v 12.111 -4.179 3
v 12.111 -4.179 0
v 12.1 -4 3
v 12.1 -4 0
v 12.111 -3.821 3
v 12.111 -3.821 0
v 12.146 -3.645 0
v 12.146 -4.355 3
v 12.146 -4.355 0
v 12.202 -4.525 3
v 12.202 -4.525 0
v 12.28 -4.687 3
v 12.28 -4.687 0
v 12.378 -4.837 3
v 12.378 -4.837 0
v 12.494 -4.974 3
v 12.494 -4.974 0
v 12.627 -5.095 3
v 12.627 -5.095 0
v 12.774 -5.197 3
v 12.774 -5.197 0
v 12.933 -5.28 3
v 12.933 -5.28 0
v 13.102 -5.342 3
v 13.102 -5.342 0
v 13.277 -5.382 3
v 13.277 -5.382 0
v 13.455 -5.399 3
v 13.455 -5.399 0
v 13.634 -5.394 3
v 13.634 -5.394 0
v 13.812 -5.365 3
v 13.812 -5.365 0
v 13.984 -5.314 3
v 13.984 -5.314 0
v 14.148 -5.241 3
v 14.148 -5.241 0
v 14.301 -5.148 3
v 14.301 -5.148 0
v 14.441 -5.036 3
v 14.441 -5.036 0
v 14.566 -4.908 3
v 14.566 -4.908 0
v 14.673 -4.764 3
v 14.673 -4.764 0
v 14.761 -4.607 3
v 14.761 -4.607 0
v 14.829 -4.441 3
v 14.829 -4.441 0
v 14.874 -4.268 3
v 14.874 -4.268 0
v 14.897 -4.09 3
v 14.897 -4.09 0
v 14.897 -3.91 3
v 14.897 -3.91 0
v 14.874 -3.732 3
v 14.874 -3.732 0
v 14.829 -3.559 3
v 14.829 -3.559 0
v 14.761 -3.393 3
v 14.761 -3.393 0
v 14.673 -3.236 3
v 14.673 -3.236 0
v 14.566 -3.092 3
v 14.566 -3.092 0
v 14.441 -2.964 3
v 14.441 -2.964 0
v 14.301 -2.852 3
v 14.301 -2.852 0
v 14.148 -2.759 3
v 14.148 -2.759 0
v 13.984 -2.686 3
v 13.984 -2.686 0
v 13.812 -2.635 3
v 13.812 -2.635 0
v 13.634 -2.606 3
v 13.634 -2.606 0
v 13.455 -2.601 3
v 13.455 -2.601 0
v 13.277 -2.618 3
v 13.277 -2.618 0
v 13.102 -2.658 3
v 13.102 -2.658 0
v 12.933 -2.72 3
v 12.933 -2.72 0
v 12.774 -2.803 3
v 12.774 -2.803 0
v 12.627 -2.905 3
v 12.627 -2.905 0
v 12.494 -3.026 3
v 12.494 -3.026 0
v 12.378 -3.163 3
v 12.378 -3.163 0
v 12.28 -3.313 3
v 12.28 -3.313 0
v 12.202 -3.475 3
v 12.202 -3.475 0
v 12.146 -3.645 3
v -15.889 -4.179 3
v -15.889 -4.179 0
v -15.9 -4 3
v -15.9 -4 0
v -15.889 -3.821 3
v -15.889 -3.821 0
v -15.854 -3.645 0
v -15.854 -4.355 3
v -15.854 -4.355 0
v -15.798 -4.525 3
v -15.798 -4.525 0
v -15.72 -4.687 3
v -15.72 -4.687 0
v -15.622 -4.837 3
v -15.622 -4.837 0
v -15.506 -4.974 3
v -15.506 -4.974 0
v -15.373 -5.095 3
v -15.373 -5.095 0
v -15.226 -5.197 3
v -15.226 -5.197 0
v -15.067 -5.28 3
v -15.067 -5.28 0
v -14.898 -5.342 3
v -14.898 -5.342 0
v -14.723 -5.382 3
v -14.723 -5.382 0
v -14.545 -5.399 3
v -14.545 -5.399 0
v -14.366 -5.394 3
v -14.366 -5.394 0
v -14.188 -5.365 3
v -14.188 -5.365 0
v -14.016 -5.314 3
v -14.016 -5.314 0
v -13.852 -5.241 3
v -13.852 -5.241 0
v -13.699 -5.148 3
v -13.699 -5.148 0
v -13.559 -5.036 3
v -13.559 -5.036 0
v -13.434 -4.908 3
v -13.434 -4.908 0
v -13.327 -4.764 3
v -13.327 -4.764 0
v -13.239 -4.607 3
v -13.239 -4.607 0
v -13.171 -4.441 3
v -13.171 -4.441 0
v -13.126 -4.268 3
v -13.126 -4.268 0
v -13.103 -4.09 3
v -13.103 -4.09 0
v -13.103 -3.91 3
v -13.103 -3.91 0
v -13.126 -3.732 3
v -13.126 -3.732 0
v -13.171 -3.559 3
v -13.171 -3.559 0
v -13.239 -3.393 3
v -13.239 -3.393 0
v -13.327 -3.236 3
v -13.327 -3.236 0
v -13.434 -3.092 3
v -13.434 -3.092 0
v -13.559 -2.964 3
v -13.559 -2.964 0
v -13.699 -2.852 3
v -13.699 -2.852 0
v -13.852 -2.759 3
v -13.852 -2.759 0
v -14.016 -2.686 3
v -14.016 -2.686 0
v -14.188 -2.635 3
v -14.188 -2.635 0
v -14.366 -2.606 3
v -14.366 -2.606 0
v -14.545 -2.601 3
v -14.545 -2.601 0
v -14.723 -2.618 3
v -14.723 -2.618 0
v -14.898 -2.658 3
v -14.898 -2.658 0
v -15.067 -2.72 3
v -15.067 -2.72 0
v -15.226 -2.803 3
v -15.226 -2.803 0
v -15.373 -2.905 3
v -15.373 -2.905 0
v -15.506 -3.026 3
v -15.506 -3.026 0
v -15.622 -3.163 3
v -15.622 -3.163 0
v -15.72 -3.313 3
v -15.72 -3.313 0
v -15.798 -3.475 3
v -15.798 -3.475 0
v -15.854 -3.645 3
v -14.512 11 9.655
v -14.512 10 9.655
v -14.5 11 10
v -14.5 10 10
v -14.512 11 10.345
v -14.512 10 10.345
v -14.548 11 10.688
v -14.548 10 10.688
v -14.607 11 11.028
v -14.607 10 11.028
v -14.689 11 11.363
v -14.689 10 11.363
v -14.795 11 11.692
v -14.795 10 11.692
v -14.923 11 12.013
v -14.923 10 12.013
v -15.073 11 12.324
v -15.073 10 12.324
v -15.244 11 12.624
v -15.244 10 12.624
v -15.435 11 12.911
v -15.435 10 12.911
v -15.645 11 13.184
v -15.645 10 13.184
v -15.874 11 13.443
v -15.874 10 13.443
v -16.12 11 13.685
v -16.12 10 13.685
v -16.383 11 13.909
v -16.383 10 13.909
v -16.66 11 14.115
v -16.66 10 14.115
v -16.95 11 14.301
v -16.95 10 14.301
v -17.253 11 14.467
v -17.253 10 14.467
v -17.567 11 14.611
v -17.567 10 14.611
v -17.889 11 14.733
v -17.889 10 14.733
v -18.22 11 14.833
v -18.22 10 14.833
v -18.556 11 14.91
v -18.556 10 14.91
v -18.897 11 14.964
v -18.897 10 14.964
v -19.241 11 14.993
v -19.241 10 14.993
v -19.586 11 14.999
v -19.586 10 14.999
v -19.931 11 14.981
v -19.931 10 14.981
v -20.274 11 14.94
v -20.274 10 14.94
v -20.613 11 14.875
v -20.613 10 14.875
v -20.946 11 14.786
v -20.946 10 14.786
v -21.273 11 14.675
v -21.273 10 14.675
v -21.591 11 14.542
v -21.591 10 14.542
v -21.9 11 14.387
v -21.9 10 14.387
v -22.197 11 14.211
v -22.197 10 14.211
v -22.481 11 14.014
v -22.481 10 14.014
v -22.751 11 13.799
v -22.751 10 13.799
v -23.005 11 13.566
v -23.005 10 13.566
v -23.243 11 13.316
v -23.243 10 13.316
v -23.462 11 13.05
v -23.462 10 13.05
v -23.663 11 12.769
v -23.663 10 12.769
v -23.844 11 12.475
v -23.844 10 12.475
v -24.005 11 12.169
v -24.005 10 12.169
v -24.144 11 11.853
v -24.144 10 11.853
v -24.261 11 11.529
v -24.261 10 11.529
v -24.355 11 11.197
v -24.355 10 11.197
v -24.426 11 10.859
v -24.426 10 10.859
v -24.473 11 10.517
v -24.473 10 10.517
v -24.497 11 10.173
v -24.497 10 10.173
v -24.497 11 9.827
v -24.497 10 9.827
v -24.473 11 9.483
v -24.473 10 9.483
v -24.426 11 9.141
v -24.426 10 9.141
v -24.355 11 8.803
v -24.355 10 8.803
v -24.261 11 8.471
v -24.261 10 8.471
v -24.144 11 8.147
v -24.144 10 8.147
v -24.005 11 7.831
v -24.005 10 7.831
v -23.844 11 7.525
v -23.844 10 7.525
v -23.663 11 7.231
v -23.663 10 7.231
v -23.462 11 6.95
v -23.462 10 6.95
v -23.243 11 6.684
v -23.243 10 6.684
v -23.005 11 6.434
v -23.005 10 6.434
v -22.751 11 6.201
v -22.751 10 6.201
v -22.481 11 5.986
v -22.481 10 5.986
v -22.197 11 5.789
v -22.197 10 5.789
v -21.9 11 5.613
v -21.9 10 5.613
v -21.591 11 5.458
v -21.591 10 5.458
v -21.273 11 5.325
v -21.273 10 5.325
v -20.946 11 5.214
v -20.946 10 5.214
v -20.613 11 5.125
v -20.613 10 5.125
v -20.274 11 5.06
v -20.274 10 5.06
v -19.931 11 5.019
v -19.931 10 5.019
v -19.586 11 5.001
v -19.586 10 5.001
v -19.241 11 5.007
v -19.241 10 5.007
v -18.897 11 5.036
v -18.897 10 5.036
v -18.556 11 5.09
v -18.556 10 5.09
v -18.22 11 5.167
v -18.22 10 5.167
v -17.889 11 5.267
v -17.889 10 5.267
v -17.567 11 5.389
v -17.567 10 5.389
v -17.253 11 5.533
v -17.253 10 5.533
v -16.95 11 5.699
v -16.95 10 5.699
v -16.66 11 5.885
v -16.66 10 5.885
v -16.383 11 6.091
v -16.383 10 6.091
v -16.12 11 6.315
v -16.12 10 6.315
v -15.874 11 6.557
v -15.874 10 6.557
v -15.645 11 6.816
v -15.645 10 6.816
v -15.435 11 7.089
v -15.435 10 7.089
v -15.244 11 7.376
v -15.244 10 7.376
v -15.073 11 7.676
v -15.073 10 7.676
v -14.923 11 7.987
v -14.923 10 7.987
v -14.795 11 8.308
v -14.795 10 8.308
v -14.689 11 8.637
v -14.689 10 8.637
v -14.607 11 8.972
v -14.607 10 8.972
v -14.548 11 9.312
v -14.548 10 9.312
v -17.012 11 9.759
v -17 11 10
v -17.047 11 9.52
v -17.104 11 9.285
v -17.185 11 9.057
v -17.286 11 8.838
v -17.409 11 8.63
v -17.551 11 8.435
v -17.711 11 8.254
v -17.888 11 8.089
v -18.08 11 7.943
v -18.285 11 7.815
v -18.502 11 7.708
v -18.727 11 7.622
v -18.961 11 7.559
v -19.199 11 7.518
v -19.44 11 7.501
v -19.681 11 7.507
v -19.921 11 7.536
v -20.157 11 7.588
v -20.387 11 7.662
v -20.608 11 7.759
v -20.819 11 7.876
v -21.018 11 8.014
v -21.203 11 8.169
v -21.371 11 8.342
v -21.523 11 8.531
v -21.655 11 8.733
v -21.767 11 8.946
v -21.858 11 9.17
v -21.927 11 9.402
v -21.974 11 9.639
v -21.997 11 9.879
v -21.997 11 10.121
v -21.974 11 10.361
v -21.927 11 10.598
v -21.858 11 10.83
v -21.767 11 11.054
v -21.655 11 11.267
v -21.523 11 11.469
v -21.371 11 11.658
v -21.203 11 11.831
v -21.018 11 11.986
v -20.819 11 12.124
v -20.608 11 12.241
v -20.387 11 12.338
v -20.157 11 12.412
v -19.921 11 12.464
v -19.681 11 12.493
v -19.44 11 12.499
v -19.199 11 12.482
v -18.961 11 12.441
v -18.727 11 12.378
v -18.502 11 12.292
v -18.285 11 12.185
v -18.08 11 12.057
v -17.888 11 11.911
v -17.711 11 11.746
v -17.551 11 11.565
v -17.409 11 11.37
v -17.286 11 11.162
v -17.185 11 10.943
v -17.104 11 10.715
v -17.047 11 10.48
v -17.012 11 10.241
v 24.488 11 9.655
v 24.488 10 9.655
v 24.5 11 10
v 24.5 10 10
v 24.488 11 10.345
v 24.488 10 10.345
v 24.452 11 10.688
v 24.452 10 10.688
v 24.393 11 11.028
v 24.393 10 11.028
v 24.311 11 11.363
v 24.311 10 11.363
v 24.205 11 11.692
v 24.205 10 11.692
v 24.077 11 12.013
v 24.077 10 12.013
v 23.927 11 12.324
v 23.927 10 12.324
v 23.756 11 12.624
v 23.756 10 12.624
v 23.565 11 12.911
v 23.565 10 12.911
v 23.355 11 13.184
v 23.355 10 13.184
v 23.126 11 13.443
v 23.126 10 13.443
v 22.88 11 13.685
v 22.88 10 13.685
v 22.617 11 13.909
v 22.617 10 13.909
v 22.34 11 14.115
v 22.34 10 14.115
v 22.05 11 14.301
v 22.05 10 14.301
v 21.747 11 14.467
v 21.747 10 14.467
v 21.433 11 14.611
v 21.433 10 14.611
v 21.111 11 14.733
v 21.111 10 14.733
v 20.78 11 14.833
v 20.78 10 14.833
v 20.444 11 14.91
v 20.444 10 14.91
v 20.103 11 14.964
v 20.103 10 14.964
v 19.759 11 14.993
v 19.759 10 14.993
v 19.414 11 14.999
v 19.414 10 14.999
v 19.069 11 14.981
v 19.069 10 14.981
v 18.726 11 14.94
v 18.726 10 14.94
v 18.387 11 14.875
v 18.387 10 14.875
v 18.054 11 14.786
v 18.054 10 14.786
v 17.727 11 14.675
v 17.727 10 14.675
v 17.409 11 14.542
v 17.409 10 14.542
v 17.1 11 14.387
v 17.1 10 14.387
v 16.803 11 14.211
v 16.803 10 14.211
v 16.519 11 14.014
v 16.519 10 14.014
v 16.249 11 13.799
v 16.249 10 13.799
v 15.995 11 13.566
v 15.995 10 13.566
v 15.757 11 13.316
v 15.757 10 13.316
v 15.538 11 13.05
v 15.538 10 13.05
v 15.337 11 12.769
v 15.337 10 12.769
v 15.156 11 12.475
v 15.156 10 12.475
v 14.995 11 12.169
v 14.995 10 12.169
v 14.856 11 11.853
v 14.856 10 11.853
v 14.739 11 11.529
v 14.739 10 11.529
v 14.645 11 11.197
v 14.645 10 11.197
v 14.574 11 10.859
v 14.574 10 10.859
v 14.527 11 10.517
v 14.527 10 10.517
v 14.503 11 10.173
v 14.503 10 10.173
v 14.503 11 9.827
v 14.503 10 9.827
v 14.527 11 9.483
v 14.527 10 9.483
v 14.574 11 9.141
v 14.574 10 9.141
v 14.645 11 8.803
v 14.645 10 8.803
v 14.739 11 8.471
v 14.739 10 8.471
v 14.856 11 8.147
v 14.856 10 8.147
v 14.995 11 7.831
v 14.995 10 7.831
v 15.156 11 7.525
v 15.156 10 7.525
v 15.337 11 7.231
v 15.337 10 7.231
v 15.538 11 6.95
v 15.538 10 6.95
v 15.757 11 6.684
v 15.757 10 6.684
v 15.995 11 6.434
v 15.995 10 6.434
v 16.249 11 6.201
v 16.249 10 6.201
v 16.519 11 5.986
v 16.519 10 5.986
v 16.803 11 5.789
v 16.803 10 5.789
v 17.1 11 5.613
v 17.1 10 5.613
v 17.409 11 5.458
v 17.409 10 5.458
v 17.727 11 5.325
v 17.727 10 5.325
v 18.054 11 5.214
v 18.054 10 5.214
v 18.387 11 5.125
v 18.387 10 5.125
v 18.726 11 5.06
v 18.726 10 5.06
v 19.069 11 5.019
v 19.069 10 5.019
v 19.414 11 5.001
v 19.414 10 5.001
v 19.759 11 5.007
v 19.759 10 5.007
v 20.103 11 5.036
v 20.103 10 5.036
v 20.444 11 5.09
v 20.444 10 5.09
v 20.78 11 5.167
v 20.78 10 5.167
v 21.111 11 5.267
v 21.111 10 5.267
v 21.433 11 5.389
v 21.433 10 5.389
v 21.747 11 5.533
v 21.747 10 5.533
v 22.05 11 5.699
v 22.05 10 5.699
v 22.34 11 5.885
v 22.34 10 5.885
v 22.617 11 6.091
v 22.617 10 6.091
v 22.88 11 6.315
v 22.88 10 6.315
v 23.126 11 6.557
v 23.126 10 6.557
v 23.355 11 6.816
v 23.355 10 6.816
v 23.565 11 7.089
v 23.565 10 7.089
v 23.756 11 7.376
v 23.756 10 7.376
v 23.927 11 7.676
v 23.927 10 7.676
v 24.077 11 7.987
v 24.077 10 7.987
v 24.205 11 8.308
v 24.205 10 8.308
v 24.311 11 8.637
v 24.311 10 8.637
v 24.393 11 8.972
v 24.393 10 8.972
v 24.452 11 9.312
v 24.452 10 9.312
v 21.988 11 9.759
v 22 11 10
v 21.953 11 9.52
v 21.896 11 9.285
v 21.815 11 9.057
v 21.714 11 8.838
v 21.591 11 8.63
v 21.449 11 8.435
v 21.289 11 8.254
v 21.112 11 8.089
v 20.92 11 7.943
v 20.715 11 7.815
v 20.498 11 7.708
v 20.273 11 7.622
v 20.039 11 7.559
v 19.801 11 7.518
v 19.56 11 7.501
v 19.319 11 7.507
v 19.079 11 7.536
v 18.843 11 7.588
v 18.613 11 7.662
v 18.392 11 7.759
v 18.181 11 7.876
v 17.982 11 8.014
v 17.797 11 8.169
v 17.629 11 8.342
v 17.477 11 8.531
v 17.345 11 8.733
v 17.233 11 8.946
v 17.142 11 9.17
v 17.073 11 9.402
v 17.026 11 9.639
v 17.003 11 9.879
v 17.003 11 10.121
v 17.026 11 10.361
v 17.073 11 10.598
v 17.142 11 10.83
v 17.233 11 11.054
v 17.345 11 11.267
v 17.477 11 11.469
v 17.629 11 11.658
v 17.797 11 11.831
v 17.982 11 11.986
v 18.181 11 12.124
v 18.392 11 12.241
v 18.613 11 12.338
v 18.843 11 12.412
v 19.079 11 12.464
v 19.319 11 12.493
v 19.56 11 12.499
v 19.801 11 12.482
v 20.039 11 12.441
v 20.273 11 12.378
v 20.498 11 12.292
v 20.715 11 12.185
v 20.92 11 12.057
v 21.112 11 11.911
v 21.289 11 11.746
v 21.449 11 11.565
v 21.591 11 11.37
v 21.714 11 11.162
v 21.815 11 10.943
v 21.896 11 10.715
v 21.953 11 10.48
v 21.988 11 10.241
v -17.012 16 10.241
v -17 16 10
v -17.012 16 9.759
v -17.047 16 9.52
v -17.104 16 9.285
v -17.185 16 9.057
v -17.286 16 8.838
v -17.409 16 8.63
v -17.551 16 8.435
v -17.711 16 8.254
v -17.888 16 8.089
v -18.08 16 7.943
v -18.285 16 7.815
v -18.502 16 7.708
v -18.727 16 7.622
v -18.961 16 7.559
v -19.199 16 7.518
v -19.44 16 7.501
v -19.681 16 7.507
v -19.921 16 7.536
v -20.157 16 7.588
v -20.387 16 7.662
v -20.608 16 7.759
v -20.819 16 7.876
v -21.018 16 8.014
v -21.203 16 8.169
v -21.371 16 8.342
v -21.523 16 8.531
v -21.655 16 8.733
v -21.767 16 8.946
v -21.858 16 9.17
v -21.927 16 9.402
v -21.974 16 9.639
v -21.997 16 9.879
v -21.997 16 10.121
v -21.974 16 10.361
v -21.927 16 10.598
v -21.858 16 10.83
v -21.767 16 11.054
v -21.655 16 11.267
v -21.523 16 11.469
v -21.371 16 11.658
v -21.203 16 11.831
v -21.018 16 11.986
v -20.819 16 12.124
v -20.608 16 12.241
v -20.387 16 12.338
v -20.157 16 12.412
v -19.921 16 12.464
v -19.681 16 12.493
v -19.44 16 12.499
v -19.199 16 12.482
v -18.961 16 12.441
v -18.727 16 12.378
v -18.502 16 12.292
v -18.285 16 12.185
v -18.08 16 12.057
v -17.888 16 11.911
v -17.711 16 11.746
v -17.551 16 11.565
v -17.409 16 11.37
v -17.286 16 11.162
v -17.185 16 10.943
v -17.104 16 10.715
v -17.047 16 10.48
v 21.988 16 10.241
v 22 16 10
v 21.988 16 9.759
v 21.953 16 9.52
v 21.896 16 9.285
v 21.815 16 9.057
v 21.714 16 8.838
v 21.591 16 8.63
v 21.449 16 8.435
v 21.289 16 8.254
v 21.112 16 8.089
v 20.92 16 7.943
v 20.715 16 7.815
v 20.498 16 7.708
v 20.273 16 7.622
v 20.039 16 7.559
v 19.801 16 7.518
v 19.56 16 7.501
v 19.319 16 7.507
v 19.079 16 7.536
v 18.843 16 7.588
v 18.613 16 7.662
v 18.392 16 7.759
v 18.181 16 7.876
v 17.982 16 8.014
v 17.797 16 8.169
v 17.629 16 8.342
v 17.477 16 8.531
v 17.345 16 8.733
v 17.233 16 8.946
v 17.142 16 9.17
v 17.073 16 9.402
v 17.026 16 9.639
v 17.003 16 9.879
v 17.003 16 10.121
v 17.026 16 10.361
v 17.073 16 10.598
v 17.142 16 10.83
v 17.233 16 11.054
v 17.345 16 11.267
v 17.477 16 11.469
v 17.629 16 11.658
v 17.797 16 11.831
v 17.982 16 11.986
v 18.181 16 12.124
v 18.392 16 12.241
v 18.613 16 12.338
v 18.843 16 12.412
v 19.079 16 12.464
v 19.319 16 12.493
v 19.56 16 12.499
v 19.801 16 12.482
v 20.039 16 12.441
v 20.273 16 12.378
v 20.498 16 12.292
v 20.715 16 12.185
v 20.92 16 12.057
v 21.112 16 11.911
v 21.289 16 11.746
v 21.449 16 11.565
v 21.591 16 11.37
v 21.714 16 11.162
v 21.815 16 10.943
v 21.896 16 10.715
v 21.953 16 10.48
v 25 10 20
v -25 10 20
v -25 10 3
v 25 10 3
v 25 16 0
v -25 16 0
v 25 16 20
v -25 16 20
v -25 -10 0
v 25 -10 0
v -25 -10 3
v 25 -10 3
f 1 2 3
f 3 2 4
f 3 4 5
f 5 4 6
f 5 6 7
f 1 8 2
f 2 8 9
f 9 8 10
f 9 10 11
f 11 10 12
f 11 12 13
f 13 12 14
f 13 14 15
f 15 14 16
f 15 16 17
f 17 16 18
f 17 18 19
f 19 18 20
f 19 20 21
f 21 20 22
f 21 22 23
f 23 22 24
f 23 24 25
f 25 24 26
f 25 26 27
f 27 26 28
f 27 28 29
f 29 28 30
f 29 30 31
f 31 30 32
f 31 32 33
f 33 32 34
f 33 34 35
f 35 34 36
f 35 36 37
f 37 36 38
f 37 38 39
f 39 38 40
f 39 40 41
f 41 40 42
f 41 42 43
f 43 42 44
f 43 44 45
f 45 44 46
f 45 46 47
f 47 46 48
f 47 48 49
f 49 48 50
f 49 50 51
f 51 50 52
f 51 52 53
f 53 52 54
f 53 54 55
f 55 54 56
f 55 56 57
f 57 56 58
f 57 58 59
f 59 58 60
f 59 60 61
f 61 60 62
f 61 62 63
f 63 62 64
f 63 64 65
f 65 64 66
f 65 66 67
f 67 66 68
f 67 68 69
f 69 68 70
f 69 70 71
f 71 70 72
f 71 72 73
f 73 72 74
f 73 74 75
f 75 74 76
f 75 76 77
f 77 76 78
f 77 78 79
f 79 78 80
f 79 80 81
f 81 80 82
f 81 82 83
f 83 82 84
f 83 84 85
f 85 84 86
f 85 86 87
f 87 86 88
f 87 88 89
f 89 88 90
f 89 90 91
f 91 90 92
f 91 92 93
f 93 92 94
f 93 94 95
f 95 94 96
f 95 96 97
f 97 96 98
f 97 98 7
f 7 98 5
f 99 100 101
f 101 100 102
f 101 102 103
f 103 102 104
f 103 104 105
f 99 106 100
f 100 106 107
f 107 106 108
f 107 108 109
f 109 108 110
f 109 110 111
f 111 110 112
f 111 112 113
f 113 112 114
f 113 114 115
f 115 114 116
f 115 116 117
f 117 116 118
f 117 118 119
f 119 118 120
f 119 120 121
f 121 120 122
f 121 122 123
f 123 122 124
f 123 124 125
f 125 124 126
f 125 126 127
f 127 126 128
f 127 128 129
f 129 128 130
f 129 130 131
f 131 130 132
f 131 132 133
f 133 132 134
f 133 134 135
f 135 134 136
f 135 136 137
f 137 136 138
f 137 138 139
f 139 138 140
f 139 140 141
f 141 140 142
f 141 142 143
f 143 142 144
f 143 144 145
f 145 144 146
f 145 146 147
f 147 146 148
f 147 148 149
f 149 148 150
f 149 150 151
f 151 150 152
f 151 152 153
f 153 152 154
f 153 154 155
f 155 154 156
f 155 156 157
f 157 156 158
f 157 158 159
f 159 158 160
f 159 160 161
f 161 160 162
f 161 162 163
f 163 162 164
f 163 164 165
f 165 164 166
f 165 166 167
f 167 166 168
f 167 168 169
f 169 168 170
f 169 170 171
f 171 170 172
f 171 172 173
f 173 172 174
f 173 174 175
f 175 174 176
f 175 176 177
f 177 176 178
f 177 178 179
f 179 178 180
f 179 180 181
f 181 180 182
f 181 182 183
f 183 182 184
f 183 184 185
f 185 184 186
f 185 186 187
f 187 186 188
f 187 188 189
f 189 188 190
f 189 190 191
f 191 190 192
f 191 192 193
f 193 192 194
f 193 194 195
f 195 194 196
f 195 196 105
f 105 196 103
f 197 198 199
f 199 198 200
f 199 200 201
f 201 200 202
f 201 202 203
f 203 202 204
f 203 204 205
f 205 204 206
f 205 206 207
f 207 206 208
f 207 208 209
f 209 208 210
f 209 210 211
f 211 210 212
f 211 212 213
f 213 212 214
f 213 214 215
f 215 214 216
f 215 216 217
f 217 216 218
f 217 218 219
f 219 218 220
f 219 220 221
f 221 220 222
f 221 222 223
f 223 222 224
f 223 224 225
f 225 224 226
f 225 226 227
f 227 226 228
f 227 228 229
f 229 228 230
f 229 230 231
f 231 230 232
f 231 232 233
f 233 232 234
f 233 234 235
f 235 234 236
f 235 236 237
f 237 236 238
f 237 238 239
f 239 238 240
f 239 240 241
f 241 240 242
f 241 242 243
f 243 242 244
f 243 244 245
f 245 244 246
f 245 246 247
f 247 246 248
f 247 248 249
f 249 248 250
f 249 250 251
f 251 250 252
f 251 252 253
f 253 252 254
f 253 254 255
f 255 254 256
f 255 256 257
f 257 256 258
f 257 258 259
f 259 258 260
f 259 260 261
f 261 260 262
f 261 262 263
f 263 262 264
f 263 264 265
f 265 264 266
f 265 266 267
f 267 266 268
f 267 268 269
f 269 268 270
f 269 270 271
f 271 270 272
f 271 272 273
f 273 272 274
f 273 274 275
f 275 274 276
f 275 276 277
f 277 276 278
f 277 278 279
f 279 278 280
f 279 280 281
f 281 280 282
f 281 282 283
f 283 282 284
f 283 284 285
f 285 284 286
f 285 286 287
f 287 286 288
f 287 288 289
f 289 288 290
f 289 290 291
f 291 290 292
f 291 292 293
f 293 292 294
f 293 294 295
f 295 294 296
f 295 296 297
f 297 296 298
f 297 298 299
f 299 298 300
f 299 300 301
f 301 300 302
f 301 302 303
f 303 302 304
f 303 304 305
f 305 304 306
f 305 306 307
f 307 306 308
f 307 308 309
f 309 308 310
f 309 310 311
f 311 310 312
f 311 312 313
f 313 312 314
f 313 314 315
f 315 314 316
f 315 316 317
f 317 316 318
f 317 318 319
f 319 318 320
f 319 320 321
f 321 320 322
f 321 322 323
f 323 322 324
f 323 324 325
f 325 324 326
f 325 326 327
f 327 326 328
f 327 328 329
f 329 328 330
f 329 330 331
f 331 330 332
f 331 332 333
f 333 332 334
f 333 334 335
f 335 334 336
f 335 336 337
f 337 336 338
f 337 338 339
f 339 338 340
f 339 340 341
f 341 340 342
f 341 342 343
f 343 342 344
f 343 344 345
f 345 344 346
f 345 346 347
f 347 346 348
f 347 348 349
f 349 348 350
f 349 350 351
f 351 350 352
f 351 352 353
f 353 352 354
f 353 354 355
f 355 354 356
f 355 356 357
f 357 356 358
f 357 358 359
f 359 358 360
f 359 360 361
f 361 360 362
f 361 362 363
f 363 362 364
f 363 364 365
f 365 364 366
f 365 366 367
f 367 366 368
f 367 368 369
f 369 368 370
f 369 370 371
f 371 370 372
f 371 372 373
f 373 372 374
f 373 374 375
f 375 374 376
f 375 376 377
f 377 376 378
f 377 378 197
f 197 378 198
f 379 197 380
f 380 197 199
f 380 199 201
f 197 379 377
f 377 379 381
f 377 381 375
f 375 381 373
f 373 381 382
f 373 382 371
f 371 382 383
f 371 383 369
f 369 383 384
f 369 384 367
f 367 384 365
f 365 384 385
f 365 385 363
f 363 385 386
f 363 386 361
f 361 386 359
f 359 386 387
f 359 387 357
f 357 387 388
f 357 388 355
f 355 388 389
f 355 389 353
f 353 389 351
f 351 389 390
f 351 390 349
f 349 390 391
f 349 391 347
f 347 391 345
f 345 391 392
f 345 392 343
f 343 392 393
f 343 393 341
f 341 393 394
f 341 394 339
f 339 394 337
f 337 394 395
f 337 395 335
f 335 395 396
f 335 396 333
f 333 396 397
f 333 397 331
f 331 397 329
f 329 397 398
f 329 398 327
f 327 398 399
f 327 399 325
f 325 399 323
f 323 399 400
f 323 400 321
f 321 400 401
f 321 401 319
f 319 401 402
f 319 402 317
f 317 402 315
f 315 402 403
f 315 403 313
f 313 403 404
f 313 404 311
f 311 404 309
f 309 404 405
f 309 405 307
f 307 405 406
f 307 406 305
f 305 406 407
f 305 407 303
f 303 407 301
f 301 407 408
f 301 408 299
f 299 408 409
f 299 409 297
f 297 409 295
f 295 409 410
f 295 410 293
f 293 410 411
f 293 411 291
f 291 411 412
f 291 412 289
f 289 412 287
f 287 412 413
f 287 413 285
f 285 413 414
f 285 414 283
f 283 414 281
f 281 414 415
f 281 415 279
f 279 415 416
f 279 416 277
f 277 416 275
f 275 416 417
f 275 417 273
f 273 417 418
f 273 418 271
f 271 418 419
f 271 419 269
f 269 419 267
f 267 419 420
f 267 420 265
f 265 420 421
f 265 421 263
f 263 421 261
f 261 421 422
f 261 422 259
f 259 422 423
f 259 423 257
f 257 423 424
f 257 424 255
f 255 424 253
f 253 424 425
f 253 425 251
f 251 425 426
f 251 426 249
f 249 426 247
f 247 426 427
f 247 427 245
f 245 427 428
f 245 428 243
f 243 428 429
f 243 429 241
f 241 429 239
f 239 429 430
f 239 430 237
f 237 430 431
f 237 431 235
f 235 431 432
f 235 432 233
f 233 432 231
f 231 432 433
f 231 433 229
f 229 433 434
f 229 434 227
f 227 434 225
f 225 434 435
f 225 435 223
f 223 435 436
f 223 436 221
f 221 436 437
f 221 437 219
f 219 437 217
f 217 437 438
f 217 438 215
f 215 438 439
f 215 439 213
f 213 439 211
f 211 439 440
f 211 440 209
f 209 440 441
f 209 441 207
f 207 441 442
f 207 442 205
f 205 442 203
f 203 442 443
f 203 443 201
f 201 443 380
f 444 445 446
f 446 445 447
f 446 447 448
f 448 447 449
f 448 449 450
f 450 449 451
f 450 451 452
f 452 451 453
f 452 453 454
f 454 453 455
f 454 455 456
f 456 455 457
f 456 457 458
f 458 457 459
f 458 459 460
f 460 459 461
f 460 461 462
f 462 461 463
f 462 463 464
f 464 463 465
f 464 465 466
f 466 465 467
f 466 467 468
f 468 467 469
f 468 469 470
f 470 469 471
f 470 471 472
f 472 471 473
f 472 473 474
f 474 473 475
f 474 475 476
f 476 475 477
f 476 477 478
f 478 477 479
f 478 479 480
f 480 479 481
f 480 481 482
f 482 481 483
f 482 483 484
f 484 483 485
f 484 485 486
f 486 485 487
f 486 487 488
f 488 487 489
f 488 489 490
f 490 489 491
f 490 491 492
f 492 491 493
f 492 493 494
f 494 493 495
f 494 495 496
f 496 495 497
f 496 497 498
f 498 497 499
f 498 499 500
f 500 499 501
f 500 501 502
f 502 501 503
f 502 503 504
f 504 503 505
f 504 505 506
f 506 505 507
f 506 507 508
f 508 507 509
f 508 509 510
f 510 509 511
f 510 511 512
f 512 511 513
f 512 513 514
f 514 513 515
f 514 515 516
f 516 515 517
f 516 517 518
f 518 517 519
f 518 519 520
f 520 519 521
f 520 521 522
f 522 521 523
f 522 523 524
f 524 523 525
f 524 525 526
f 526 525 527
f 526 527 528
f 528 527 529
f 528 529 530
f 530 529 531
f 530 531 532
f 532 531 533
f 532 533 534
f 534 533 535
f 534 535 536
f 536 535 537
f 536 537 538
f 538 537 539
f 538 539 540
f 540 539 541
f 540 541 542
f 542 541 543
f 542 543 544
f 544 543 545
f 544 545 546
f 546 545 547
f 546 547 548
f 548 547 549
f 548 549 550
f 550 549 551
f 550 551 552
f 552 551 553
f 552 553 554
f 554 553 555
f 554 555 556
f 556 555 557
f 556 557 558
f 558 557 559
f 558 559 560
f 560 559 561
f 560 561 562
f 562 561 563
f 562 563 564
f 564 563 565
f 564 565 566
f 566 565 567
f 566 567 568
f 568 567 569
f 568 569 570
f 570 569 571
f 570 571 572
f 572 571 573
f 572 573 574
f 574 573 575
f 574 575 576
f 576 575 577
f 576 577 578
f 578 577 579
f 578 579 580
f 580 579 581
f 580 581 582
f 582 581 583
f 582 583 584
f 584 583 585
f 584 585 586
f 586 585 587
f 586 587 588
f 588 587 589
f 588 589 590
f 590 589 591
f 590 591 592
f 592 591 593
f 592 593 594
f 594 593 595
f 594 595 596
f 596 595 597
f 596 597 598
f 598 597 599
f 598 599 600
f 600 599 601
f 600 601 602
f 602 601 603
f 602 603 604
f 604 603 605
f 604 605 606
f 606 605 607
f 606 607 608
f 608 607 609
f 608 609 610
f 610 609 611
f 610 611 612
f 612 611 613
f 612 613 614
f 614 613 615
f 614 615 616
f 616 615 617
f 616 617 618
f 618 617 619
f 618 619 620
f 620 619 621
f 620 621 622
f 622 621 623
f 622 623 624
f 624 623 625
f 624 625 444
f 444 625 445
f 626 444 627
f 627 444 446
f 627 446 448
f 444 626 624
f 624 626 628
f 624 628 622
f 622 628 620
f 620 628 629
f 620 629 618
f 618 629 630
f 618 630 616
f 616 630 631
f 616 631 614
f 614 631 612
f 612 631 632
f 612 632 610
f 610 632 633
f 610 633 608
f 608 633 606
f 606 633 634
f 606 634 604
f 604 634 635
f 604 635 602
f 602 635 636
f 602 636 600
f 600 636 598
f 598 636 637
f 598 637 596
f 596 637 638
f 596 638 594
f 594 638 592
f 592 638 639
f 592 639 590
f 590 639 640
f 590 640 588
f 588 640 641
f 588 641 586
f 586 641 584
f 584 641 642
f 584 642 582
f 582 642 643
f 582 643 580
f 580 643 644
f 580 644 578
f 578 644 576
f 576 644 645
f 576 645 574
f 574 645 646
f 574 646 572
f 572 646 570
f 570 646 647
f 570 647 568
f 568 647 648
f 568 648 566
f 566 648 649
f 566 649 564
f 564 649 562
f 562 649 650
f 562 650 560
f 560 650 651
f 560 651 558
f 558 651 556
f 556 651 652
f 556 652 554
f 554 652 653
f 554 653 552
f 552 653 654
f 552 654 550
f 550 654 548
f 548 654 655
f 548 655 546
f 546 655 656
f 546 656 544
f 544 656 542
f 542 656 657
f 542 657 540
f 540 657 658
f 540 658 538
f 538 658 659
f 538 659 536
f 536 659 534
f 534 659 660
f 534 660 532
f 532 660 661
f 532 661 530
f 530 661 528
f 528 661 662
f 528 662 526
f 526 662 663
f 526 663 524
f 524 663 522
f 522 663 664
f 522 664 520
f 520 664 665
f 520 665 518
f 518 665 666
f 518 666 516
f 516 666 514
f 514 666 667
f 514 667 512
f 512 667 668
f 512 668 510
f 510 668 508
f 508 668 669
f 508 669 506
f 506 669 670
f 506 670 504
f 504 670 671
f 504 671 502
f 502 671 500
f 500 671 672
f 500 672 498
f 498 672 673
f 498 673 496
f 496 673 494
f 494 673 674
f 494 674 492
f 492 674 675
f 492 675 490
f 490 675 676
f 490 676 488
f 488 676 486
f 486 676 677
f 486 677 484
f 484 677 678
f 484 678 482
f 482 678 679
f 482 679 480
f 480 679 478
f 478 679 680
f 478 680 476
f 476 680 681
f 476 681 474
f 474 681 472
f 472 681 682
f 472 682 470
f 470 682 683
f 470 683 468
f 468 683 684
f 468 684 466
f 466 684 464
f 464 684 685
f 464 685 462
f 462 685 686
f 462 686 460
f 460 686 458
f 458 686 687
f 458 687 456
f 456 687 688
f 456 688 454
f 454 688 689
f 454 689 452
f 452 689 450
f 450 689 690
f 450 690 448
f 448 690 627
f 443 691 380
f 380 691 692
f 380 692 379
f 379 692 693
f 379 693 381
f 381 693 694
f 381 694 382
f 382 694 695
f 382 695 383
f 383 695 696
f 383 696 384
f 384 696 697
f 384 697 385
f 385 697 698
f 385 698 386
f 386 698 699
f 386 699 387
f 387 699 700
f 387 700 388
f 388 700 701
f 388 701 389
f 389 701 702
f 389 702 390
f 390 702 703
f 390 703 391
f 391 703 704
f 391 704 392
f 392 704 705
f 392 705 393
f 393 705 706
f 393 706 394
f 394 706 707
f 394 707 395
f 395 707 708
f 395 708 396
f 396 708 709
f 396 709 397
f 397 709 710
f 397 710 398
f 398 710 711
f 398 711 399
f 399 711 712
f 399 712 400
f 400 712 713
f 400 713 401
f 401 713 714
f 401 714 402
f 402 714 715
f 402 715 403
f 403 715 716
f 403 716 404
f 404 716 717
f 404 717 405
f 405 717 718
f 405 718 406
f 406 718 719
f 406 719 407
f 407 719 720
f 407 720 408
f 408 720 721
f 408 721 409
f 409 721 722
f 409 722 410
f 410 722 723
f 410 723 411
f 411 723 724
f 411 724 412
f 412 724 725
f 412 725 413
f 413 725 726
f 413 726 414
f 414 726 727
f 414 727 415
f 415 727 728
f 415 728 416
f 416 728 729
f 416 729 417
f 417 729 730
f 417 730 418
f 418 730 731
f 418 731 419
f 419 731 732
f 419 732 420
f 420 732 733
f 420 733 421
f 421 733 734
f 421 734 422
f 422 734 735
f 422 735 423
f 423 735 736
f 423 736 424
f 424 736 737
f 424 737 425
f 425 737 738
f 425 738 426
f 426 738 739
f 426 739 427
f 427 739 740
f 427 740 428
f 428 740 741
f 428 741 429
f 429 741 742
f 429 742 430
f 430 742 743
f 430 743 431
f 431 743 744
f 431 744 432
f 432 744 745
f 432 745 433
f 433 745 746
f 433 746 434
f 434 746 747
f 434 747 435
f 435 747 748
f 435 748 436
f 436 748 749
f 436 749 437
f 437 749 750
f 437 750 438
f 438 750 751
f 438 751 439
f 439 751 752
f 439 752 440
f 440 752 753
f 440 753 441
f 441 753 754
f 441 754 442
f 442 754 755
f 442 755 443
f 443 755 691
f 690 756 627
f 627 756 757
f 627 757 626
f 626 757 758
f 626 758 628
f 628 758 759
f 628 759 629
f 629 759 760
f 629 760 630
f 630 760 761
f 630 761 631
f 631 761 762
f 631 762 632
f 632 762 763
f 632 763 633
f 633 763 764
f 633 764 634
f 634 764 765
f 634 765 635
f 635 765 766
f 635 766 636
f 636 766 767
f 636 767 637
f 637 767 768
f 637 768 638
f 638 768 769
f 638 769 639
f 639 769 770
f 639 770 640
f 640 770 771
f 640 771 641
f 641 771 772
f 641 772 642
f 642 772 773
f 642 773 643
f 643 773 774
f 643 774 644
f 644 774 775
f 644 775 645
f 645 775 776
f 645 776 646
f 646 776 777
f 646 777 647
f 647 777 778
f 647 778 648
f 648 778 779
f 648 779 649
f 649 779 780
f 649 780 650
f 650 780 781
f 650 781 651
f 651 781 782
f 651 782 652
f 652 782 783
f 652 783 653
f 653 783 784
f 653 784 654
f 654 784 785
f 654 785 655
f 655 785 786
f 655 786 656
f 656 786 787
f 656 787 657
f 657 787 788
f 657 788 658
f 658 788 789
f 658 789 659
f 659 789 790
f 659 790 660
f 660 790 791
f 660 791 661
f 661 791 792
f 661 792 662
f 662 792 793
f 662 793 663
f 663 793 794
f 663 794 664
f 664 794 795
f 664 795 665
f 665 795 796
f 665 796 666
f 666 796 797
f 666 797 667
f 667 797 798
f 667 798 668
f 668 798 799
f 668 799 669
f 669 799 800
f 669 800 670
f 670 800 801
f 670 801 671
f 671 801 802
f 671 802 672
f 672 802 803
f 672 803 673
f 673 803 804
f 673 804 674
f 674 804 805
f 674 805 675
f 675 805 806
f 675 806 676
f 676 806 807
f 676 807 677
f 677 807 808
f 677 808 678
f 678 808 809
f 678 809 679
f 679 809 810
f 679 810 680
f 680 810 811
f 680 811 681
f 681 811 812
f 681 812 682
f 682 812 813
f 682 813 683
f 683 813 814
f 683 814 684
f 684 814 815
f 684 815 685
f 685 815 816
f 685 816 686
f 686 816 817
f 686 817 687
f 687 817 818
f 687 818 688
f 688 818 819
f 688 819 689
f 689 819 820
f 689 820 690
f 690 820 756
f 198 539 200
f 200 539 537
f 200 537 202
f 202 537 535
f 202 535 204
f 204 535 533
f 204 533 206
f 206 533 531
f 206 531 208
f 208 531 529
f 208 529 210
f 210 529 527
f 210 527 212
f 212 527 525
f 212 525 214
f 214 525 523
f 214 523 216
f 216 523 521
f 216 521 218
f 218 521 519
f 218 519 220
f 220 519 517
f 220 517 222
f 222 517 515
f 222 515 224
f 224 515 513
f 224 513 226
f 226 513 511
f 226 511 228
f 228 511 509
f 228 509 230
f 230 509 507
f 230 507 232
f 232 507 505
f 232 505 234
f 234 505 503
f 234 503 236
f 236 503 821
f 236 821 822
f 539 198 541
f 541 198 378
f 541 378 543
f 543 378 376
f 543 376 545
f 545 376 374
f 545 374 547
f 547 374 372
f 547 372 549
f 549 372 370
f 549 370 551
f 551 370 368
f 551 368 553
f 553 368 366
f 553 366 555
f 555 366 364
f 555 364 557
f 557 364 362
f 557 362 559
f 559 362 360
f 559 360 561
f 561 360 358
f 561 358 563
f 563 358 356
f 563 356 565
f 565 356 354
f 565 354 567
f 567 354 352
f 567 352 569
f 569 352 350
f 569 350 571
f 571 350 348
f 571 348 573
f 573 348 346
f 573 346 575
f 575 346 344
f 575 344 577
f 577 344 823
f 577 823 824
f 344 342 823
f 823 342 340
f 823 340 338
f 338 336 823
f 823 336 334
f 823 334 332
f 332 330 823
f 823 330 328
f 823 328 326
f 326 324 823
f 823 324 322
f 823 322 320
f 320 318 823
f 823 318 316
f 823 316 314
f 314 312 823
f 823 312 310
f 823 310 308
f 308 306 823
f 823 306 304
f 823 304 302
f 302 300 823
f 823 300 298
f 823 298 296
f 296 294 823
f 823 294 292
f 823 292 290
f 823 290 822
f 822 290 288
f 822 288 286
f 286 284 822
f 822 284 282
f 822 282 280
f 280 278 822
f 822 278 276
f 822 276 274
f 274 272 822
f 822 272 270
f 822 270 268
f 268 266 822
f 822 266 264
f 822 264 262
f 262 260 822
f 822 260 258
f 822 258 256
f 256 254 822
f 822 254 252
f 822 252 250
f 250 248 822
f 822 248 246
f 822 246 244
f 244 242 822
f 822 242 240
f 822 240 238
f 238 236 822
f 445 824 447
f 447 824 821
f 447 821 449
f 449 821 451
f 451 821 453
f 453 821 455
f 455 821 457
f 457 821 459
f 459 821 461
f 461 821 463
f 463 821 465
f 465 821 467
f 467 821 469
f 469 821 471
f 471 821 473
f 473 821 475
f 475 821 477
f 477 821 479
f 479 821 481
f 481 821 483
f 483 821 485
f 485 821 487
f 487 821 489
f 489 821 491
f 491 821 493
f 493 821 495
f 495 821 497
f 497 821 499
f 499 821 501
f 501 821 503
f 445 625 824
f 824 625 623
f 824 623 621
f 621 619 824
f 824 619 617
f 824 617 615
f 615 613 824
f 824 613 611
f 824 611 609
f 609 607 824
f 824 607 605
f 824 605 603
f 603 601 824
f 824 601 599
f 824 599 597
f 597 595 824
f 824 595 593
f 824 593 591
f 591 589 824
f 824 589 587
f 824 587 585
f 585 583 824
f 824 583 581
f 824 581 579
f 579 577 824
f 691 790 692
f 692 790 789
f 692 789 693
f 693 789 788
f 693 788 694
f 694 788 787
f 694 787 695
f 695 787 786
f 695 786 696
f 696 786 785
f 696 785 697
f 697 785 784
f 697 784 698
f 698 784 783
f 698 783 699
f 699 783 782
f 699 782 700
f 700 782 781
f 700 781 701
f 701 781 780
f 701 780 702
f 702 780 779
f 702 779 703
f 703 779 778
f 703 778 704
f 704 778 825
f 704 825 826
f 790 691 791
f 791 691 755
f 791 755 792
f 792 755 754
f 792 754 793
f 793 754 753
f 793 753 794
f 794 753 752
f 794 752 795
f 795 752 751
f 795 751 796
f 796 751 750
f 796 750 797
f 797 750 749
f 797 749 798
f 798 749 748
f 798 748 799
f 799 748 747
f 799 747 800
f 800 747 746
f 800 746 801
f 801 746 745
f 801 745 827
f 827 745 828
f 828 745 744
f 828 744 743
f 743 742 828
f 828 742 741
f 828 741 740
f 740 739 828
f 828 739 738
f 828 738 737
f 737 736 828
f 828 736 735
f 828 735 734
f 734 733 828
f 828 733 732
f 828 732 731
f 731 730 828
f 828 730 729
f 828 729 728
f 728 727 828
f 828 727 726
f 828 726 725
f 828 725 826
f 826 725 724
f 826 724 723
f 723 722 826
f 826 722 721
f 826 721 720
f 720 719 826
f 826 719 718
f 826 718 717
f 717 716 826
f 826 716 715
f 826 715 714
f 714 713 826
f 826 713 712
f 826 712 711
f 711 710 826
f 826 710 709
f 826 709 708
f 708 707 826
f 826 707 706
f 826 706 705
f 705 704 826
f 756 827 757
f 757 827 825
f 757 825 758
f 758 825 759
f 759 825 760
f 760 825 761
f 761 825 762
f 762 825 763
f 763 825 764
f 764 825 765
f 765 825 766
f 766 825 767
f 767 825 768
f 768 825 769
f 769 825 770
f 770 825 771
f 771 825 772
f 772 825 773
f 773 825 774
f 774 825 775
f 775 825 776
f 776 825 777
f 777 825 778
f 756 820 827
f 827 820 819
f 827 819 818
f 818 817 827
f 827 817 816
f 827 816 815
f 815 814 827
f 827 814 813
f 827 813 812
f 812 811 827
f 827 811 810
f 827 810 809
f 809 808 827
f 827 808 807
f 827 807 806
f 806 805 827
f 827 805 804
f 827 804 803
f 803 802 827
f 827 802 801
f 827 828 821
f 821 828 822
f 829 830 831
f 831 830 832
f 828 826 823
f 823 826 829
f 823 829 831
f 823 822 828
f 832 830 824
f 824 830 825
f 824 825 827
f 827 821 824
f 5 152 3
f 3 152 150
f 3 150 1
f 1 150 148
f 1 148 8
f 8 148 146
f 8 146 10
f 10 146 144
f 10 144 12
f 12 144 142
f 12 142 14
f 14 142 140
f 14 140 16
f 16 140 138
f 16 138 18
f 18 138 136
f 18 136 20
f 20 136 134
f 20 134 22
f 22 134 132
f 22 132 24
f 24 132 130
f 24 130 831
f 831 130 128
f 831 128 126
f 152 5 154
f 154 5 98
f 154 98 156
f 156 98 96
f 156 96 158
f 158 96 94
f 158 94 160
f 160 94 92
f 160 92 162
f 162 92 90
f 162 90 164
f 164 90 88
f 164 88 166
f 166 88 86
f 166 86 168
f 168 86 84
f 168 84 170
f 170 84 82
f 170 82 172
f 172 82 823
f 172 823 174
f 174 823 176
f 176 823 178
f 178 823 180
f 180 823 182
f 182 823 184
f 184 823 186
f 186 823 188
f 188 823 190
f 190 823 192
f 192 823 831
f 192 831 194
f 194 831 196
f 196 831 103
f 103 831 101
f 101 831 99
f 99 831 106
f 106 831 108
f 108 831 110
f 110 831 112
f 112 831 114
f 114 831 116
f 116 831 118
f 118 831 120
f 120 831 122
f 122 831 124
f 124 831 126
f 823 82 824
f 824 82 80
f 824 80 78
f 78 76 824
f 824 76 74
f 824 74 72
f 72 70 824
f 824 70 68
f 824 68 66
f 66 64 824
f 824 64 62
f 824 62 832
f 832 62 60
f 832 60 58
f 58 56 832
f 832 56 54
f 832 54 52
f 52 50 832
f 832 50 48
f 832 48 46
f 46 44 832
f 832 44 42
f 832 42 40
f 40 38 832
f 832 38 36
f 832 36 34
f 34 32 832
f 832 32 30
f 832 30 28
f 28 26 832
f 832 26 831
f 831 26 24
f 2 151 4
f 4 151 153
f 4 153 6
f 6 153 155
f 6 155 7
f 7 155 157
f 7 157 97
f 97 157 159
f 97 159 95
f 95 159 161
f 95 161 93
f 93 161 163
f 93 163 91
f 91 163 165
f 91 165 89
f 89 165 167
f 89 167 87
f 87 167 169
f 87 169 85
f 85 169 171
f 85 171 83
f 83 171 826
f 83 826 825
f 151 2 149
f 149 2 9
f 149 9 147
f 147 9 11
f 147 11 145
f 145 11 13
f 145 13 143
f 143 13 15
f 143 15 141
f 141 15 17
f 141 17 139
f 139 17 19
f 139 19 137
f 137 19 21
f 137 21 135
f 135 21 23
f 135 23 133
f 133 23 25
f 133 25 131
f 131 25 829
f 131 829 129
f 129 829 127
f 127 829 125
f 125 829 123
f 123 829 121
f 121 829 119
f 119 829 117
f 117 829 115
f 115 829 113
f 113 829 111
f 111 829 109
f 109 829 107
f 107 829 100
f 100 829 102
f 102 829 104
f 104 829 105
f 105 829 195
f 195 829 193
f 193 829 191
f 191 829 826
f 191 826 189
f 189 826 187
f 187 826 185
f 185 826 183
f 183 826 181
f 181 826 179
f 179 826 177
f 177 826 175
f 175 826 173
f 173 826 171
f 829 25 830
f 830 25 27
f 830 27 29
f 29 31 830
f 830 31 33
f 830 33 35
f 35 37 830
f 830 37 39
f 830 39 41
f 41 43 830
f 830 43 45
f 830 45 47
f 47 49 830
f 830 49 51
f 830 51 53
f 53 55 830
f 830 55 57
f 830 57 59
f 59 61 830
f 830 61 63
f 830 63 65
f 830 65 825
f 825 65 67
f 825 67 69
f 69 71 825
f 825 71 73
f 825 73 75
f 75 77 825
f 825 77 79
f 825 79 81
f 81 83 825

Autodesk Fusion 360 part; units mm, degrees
sketch "Sketch1" plane through (0, 0, 0) normal (0, 0, 1) x (1, 0, 0)
  line L0 (25, -10) -> (-25, -10)
  line L1 (-25, -10) -> (-25, 10)
  line L2 (-25, 10) -> (25, 10)
  line L3 (25, 10) -> (25, -10)
  line L4 (25, -10) -> (-25, 10) construction
  line L5 (-25, -10) -> (25, 10) construction
  line L6 (25, 10) -> (-25, 10)
  line L7 (-25, 10) -> (-25, 16)
  line L8 (-25, 16) -> (25, 16)
  line L9 (25, 16) -> (25, 10)
  dimension "d1" = 50
  dimension "d2" = 20
  dimension "d3" = 6
  dimension "d27" = 50
extrude "Extrude1" add sketch "Sketch1" along normal blind 3 contours L0 L1 L2 L3 L6
extrude "Extrude2" add sketch "Sketch1" along normal blind 20 contours L2 L6 L7 L8 L9
sketch "Sketch2" plane through (0, 16, 0) normal (0, 1, 0) x (-1, 0, 0)
  line L0 (-25, 0) -> (25, 0)
  line L1 (25, 0) -> (25, 20)
  line L2 (25, 20) -> (-25, 20)
  line L3 (-25, 20) -> (-25, 0)
  circle A0 centre (19.5, 10) radius 2.5
  circle A1 centre (-19.5, 10) radius 2.5
  circle A2 centre (-19.5, 10) radius 5
  circle A3 centre (19.5, 10) radius 5
  dimension "d8" = 5
  dimension "d9" = 5
  dimension "d10" = 5.5
  dimension "d11" = 5.5
  dimension "d12" = 10
  dimension "d13" = 10
extrude "Extrude3" cut sketch "Sketch2" against normal up to surface (6 mm away) contours A0 | A1
extrude "Extrude4" cut sketch "Sketch2" along normal blind 1 from surface at -6 contours A2 | A3
sketch "Sketch3" plane through (0, 0, 0) normal (0, 0, -1) x (1, 0, 0)
  line L0 (25, -16) -> (25, 10)
  line L1 (25, 10) -> (-25, 10)
  line L2 (-25, 10) -> (-25, -16)
  line L3 (-25, -16) -> (25, -16)
  circle A0 centre (-14.5, 4) radius 1.4
  circle A1 centre (13.5, 4) radius 1.4
  dimension "d19" = 2.8
  dimension "d20" = 2.8
  dimension "d21" = 28
  dimension "d22" = 6
  dimension "d23" = 6
  dimension "d24" = 10.5
extrude "Extrude5" cut sketch "Sketch3" against normal up to surface (3 mm away) contours A0 | A1
equation "d11 = d10"
equation "d23 = d22"
equation "d24 = ( 50 mm - 29 mm ) / 2"
equation "d27 = d1"
